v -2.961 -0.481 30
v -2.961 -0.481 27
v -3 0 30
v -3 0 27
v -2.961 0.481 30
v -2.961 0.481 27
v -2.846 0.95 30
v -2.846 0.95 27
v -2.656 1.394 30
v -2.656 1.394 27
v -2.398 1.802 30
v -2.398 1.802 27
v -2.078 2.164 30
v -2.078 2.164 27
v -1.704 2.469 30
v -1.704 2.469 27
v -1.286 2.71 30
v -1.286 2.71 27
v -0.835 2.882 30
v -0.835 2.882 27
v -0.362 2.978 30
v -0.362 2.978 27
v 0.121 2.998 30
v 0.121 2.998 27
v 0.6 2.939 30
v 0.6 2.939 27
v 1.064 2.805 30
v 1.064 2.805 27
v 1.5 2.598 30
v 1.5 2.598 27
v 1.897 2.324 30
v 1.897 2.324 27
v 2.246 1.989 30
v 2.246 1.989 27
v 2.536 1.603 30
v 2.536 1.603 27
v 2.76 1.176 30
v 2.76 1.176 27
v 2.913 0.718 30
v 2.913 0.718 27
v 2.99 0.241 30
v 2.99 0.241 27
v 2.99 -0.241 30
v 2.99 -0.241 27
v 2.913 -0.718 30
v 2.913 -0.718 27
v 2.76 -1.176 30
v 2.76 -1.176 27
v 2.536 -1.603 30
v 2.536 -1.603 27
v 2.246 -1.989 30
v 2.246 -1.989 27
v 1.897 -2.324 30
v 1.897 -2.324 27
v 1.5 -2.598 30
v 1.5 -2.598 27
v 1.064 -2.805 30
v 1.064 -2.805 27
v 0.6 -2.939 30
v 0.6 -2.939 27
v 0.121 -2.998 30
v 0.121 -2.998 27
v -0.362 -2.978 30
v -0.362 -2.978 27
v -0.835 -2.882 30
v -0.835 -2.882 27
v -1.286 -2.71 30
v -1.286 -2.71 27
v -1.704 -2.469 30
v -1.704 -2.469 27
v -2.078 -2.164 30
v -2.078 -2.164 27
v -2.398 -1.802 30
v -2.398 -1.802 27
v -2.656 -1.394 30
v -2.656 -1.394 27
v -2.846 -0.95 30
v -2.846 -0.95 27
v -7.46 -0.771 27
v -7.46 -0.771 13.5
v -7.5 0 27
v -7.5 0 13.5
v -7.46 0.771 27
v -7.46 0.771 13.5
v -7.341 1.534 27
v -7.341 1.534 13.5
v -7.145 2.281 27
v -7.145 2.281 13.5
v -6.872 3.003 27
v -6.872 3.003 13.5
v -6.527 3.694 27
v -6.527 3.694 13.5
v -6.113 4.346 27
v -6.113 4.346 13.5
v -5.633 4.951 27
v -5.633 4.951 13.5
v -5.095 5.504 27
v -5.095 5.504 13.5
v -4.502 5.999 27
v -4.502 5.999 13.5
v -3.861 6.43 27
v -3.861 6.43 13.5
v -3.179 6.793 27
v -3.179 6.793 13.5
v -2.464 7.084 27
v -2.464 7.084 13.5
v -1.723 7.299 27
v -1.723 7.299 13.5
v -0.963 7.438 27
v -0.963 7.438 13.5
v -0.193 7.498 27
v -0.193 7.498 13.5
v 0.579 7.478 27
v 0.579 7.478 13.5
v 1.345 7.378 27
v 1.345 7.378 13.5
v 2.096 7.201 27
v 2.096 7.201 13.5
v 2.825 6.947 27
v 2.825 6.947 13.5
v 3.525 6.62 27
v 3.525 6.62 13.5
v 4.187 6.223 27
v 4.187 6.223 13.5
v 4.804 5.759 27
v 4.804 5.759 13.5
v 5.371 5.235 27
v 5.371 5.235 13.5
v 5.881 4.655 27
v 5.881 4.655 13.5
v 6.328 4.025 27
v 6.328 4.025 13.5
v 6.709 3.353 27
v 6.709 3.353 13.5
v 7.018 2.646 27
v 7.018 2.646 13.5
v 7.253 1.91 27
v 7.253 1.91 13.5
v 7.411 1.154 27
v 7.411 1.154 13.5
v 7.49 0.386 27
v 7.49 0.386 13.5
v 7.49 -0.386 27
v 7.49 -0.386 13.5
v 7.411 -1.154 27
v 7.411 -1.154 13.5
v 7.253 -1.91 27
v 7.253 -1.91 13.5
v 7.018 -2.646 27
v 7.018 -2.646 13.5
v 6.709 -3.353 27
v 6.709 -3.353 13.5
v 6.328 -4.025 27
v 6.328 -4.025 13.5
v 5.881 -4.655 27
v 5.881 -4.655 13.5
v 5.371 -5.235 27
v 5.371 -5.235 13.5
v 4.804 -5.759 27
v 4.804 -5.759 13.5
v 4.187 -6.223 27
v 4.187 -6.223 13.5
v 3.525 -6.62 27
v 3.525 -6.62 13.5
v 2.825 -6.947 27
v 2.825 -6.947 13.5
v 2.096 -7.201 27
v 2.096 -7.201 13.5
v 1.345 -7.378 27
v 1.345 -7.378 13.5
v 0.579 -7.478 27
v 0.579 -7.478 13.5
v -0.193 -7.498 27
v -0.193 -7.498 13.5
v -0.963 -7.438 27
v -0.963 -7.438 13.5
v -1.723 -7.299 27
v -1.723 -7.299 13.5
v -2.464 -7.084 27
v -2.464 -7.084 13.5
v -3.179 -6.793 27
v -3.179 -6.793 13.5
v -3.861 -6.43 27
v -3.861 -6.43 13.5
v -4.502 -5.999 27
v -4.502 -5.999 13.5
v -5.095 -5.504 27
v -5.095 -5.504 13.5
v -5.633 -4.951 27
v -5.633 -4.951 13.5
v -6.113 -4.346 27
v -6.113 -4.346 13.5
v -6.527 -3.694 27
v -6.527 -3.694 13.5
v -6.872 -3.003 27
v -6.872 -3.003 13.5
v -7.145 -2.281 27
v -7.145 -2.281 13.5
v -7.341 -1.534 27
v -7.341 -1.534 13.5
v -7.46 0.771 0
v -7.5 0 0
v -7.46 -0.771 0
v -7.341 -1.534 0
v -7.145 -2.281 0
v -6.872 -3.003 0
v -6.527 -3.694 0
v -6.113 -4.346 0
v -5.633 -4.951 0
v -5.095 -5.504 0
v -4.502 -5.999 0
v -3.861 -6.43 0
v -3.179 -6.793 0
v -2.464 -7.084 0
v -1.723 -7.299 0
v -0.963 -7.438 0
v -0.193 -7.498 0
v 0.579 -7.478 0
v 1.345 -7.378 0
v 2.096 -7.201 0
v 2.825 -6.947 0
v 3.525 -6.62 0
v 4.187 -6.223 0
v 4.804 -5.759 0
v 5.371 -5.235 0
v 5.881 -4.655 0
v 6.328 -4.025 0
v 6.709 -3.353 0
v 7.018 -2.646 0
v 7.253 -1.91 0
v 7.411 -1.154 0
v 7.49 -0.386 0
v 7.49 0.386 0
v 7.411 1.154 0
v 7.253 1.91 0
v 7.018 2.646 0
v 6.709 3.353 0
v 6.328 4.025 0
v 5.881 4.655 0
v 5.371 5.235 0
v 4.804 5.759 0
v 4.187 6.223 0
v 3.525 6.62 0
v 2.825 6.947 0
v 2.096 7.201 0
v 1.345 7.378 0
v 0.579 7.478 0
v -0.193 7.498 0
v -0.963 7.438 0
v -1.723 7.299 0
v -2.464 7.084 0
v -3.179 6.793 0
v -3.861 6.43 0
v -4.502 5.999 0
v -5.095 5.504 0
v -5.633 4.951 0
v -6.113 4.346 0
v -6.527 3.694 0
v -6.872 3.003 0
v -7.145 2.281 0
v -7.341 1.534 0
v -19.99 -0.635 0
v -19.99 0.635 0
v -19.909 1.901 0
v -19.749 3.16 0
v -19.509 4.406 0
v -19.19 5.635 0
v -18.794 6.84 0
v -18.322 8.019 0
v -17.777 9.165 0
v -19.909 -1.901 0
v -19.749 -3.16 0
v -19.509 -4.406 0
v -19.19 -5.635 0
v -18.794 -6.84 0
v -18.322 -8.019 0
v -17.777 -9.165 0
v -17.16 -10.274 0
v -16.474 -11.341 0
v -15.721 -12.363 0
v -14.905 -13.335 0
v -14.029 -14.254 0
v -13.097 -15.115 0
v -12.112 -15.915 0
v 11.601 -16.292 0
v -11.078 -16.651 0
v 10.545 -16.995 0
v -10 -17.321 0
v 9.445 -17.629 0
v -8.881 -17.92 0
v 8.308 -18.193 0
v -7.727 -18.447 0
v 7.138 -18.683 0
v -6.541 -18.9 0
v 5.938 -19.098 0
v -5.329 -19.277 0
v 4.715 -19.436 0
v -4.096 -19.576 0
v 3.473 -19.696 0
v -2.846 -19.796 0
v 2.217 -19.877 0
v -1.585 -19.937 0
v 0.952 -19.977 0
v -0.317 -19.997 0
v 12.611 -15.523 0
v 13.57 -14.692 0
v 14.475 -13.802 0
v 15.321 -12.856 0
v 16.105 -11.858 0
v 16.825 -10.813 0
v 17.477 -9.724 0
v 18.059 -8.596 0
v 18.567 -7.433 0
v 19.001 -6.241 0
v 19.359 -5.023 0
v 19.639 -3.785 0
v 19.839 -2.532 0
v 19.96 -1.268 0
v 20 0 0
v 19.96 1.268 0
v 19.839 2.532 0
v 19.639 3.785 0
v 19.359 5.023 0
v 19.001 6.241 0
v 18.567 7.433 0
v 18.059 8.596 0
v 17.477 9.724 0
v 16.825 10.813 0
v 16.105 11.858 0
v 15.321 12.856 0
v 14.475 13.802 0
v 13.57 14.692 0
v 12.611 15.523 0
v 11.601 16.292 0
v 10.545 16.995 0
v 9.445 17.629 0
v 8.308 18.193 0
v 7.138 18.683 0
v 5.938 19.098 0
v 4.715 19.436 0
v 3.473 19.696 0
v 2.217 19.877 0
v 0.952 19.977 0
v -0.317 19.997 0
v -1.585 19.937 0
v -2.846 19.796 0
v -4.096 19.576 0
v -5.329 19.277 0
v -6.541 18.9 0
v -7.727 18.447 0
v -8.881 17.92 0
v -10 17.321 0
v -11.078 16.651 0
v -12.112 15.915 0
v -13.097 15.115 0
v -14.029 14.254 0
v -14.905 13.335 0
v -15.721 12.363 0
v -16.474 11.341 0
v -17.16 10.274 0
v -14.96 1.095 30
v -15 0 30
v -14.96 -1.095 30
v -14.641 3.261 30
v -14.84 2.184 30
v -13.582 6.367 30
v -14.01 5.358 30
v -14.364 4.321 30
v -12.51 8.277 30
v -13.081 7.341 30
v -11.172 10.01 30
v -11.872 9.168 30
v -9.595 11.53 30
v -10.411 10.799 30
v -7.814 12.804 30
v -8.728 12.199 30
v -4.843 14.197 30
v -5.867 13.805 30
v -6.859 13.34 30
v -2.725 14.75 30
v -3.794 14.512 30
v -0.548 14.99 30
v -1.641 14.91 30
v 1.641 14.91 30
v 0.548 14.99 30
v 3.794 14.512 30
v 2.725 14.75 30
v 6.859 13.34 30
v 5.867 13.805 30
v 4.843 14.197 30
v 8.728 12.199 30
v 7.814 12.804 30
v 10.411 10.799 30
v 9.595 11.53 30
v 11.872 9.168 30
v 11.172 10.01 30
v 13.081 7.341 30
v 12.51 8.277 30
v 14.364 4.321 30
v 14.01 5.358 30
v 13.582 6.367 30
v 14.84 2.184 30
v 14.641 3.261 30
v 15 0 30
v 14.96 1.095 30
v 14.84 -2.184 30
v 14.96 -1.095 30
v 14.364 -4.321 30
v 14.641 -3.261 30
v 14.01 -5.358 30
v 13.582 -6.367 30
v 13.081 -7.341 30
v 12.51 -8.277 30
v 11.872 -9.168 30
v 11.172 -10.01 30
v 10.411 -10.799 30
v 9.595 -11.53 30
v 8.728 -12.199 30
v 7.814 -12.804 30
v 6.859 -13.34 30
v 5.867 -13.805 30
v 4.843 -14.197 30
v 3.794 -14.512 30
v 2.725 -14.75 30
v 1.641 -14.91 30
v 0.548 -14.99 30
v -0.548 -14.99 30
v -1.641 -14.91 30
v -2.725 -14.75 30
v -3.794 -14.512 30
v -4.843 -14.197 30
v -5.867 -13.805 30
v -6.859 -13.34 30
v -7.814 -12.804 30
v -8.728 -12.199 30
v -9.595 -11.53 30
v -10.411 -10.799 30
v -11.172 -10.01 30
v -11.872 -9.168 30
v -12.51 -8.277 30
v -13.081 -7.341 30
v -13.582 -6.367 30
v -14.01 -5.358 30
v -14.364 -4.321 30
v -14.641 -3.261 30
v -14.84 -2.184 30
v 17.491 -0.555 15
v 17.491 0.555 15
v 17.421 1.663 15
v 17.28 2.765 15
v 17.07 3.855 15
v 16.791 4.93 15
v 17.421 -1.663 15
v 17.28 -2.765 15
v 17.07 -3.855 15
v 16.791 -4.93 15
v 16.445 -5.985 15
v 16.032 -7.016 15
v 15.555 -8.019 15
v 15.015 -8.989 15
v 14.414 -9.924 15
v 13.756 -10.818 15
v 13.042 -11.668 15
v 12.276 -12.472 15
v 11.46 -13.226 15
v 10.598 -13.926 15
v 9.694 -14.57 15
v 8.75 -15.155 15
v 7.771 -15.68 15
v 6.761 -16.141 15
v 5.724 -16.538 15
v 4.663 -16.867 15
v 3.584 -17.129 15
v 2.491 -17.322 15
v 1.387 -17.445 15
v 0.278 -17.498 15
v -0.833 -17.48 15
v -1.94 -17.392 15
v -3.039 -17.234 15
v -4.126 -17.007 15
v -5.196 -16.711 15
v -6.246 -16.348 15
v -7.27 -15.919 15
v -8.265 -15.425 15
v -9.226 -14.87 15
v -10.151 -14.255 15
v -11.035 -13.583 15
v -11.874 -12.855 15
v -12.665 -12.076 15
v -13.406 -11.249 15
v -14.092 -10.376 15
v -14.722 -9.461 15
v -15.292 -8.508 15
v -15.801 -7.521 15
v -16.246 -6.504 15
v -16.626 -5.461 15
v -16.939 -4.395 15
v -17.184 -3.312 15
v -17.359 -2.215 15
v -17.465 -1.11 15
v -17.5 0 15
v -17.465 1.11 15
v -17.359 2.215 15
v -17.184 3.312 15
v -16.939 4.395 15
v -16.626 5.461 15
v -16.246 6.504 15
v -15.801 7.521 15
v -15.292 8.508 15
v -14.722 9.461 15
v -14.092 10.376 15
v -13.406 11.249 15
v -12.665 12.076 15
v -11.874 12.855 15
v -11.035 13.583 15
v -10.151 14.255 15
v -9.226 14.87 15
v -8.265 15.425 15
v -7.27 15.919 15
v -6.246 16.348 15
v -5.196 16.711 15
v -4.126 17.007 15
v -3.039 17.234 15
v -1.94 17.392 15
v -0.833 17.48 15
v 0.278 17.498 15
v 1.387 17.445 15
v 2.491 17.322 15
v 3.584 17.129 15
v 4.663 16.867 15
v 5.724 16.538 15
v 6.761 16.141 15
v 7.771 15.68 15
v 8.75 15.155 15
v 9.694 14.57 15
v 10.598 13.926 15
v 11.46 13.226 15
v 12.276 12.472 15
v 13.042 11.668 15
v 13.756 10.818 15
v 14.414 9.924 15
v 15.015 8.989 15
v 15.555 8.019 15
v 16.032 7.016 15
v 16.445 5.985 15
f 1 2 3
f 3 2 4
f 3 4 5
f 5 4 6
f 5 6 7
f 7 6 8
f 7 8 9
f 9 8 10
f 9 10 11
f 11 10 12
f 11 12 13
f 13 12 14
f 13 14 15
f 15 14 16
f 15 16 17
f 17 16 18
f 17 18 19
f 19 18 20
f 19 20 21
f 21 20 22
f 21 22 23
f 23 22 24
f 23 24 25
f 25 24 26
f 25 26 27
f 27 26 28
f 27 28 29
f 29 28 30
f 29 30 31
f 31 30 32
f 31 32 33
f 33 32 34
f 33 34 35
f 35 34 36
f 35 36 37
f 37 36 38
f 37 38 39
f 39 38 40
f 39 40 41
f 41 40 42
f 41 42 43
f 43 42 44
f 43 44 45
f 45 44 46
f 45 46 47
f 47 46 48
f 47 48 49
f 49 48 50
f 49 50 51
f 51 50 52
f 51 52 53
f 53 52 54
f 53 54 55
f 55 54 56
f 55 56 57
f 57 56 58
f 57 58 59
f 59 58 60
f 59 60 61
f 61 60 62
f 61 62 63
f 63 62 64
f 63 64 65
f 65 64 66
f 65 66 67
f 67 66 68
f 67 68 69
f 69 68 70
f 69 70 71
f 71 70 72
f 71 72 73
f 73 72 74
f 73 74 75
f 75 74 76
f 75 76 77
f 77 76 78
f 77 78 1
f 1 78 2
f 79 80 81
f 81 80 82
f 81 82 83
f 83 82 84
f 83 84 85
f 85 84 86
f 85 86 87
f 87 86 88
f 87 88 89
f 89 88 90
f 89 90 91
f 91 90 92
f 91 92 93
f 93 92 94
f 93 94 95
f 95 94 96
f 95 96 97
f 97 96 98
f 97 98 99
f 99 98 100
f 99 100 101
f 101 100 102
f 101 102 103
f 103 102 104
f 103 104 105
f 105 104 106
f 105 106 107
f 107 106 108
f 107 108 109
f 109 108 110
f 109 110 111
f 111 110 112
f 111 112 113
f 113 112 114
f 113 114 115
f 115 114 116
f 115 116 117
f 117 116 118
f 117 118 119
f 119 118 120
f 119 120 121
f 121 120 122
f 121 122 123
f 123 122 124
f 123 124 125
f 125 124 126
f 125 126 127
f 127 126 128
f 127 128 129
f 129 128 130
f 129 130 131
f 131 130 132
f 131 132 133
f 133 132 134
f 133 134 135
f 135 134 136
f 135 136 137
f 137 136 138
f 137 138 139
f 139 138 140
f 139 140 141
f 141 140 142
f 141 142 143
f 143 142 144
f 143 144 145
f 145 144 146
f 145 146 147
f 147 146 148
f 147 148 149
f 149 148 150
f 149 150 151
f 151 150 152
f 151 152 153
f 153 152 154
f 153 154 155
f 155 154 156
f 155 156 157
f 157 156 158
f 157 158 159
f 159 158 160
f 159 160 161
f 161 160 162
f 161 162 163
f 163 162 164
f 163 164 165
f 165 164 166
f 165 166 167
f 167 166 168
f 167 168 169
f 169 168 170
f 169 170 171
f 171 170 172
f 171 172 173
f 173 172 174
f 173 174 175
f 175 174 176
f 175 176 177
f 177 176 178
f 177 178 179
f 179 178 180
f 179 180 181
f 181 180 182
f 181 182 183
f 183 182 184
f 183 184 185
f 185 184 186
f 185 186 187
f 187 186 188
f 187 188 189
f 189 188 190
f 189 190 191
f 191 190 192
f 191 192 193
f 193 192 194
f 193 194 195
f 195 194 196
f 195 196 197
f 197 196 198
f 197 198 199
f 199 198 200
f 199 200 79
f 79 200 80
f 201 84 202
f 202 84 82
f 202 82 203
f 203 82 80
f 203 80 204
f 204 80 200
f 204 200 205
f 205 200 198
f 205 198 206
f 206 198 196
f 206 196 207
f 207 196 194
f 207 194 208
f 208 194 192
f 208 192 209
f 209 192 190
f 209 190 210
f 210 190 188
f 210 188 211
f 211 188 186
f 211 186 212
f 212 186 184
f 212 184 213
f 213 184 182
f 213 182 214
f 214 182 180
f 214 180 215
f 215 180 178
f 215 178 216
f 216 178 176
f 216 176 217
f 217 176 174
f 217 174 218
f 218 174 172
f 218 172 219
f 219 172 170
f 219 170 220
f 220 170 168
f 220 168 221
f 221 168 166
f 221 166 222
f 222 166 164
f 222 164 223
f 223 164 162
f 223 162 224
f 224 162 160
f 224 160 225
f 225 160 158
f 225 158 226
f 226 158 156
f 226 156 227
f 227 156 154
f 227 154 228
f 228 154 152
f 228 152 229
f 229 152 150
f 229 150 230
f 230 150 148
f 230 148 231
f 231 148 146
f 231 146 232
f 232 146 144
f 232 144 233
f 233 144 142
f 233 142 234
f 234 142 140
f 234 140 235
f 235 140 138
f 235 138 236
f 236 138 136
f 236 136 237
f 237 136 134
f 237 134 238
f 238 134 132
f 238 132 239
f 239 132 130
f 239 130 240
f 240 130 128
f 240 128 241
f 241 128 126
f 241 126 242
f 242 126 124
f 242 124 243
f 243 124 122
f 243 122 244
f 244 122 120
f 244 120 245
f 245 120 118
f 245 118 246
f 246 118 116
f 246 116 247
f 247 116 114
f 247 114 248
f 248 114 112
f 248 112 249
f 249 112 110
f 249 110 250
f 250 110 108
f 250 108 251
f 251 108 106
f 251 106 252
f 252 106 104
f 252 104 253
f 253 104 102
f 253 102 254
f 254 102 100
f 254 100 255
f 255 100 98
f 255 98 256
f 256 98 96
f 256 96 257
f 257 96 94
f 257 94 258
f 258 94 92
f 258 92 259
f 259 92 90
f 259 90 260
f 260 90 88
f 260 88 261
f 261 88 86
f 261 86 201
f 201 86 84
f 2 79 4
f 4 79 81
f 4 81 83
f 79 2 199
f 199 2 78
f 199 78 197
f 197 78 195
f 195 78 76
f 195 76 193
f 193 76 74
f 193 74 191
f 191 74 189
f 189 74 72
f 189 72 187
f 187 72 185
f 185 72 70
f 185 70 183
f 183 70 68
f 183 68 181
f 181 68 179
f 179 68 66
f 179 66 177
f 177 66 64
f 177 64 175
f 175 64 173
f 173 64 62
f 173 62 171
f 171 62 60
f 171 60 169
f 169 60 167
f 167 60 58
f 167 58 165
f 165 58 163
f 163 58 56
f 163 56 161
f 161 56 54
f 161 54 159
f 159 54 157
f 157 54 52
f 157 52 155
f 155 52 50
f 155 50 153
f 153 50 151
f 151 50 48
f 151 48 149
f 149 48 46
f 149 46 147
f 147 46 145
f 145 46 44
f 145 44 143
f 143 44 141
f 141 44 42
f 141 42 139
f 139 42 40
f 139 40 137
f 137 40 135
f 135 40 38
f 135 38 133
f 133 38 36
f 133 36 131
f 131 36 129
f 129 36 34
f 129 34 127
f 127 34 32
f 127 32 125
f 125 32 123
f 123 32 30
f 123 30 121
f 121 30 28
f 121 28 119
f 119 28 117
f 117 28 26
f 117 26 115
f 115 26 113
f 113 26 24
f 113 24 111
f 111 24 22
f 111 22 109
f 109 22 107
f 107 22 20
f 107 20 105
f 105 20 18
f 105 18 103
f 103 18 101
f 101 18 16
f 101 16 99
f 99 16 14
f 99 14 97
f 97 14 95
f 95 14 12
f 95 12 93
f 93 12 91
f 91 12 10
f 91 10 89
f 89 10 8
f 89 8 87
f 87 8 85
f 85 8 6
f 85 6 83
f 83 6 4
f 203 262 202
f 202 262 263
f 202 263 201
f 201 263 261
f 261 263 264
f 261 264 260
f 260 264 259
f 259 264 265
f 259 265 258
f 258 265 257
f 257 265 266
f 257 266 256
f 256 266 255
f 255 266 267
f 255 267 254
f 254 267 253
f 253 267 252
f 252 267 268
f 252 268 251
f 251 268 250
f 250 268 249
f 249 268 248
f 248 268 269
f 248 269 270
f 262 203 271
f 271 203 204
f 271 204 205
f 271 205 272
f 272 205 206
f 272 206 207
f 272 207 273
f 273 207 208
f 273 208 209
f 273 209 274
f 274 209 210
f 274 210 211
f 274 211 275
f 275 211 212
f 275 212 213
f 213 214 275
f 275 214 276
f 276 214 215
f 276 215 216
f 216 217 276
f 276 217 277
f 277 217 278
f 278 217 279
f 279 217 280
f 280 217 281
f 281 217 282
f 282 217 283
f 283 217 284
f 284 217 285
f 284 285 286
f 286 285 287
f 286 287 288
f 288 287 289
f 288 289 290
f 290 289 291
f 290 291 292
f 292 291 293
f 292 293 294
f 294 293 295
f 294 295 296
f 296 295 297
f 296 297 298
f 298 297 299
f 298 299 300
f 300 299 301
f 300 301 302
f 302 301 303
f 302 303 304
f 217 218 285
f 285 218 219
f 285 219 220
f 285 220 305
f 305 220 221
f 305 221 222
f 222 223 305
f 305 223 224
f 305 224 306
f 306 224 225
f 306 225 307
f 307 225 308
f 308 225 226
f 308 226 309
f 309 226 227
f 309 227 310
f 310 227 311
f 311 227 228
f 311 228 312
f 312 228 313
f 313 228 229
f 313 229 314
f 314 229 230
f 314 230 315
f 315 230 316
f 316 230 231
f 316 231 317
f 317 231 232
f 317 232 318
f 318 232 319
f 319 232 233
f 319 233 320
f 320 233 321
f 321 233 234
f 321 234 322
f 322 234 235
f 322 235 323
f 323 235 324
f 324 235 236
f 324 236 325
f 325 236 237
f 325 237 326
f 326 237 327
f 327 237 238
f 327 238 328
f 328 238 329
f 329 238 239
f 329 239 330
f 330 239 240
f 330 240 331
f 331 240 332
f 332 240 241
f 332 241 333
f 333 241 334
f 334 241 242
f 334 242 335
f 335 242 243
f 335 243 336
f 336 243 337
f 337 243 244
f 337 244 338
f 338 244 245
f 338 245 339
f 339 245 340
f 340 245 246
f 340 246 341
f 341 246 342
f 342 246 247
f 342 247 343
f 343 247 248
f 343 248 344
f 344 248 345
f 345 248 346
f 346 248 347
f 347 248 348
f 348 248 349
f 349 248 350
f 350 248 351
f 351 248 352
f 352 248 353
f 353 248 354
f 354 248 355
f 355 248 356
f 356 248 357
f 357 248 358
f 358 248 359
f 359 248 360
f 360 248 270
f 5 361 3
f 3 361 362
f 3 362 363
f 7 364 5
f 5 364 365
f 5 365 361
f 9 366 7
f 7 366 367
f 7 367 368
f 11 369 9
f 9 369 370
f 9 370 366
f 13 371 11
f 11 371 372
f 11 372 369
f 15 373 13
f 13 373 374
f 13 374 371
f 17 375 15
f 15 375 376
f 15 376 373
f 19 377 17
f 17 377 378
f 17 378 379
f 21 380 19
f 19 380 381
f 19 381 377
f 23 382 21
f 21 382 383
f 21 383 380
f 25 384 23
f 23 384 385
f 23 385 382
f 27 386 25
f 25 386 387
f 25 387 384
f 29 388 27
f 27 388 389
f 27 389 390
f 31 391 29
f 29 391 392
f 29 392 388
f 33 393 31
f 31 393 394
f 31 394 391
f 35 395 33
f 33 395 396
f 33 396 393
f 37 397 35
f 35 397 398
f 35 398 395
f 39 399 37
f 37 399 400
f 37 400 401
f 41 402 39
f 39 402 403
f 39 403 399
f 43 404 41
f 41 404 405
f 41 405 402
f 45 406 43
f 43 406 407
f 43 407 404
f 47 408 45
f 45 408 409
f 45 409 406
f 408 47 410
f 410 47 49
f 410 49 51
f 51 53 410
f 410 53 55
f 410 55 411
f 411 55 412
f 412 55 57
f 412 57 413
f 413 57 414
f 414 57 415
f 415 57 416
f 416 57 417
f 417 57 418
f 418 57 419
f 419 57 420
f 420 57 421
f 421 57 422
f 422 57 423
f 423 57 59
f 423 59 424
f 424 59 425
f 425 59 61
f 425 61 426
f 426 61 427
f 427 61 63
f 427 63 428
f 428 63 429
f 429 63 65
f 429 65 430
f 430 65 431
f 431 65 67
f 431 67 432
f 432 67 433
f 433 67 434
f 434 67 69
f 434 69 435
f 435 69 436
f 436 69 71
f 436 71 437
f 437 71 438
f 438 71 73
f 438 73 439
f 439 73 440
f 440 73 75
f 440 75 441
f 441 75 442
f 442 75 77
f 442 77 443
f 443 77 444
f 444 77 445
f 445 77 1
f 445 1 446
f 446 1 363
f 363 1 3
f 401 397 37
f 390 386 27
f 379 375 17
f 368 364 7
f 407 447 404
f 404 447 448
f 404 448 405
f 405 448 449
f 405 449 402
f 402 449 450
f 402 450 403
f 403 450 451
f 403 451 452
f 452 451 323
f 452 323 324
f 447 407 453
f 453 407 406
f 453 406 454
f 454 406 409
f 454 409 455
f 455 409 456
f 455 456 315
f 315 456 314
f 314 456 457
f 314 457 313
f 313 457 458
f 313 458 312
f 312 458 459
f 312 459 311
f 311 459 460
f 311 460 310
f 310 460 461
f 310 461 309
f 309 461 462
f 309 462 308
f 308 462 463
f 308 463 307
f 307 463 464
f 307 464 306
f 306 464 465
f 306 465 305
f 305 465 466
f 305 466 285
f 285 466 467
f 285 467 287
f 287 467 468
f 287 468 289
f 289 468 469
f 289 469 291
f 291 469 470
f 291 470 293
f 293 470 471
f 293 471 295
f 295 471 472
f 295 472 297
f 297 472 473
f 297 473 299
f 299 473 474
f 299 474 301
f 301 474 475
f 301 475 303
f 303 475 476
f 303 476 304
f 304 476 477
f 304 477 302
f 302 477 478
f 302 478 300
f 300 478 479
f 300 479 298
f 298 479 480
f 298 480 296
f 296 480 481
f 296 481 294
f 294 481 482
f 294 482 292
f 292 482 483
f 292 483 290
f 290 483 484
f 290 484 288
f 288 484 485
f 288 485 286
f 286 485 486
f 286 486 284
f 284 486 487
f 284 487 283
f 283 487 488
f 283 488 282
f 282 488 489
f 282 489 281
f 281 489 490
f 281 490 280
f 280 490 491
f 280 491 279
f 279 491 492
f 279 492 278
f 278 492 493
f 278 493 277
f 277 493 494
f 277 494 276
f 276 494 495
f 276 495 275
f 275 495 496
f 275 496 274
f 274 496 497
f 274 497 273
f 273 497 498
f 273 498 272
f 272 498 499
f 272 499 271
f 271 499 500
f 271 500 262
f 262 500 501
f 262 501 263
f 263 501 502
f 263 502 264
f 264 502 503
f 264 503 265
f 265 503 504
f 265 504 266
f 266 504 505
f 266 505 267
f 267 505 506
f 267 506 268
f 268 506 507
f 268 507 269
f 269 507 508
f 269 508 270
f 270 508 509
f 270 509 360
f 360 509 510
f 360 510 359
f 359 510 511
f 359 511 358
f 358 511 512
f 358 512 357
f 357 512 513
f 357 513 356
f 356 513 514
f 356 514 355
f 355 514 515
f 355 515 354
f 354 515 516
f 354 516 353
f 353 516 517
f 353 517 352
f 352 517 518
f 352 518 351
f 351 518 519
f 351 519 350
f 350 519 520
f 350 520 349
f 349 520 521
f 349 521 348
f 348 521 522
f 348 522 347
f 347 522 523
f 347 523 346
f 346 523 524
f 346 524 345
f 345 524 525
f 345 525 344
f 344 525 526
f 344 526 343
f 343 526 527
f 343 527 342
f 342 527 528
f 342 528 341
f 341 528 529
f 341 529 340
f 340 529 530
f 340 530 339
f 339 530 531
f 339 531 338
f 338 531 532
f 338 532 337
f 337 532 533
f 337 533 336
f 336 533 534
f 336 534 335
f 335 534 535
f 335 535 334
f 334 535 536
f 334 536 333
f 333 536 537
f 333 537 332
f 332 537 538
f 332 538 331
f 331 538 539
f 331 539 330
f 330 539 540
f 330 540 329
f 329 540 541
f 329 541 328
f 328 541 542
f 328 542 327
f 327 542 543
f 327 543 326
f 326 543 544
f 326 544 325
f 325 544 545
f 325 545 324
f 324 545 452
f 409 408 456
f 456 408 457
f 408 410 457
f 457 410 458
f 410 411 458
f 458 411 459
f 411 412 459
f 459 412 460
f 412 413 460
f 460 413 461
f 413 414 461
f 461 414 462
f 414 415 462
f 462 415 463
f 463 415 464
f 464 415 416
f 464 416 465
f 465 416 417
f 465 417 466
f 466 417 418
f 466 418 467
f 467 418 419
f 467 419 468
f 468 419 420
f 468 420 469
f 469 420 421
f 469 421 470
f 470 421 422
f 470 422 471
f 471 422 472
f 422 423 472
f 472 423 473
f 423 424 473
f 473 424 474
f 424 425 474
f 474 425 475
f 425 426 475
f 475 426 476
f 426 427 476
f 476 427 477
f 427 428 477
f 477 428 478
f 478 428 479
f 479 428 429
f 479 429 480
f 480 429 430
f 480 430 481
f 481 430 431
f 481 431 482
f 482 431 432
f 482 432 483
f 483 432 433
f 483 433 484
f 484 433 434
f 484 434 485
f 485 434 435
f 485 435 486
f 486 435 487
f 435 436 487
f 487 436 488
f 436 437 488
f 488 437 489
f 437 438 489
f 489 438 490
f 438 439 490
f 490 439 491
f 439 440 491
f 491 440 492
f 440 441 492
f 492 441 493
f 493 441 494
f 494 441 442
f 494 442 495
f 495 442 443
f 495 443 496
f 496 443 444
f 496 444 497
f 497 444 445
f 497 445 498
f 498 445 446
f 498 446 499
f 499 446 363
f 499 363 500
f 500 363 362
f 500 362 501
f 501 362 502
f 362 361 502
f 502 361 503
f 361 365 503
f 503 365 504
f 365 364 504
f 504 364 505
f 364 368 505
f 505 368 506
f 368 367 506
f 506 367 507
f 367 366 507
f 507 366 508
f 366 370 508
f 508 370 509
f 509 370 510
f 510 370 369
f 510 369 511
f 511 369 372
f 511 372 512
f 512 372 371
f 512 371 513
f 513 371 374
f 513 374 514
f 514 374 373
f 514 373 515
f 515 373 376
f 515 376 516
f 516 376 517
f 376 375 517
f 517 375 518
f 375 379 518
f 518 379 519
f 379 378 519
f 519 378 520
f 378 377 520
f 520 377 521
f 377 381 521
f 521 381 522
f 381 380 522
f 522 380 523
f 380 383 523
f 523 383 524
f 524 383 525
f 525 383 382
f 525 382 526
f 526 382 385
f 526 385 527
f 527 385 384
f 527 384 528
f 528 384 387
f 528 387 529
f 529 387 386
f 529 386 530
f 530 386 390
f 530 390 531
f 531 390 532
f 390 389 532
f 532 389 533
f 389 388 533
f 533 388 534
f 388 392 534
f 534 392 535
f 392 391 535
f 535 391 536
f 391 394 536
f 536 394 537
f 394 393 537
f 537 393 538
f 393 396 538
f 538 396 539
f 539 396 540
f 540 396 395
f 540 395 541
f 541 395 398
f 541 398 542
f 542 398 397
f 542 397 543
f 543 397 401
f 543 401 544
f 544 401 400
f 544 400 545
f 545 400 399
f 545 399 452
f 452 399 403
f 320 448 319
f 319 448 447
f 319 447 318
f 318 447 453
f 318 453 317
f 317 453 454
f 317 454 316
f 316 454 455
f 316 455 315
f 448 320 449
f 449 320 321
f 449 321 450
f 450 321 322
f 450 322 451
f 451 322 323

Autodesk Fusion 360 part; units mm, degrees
sketch "Sketch1" plane through (0, 0, 0) normal (0, 0, 1) x (1, 0, 0)
  circle A0 centre (0, 0) radius 20
  dimension "d1" = 40
ref_plane "WorkPlane1" through (0, 0, 30) normal (0, 0, 1) x (1, 0, 0)
sketch "Sketch2" plane through (0, 0, 30) normal (0, 0, 1) x (1, 0, 0)
  circle A0 centre (0, 0) radius 15
  dimension "d3" = 30
loft "Loft1" add profiles "Sketch2", "Sketch1" section 1 section 2
sketch "Sketch3" plane through (0, 0, 0) normal (0, 0, -1) x (1, 0, 0)
  circle A0 centre (0, 0) radius 20
  circle A1 centre (0, 0) radius 7.5
  dimension "d4" = 15
extrude "Extrude1" cut sketch "Sketch3" against normal blind 27 contours A1
sketch "Sketch4" plane through (0, 0, 27) normal (0, 0, -1) x (1, 0, 0)
  circle A0 centre (0, 0) radius 7.5
  circle A1 centre (0, 0) radius 3
  dimension "d7" = 6
extrude "Extrude2" cut sketch "Sketch4" against normal blind 7 contours A1
